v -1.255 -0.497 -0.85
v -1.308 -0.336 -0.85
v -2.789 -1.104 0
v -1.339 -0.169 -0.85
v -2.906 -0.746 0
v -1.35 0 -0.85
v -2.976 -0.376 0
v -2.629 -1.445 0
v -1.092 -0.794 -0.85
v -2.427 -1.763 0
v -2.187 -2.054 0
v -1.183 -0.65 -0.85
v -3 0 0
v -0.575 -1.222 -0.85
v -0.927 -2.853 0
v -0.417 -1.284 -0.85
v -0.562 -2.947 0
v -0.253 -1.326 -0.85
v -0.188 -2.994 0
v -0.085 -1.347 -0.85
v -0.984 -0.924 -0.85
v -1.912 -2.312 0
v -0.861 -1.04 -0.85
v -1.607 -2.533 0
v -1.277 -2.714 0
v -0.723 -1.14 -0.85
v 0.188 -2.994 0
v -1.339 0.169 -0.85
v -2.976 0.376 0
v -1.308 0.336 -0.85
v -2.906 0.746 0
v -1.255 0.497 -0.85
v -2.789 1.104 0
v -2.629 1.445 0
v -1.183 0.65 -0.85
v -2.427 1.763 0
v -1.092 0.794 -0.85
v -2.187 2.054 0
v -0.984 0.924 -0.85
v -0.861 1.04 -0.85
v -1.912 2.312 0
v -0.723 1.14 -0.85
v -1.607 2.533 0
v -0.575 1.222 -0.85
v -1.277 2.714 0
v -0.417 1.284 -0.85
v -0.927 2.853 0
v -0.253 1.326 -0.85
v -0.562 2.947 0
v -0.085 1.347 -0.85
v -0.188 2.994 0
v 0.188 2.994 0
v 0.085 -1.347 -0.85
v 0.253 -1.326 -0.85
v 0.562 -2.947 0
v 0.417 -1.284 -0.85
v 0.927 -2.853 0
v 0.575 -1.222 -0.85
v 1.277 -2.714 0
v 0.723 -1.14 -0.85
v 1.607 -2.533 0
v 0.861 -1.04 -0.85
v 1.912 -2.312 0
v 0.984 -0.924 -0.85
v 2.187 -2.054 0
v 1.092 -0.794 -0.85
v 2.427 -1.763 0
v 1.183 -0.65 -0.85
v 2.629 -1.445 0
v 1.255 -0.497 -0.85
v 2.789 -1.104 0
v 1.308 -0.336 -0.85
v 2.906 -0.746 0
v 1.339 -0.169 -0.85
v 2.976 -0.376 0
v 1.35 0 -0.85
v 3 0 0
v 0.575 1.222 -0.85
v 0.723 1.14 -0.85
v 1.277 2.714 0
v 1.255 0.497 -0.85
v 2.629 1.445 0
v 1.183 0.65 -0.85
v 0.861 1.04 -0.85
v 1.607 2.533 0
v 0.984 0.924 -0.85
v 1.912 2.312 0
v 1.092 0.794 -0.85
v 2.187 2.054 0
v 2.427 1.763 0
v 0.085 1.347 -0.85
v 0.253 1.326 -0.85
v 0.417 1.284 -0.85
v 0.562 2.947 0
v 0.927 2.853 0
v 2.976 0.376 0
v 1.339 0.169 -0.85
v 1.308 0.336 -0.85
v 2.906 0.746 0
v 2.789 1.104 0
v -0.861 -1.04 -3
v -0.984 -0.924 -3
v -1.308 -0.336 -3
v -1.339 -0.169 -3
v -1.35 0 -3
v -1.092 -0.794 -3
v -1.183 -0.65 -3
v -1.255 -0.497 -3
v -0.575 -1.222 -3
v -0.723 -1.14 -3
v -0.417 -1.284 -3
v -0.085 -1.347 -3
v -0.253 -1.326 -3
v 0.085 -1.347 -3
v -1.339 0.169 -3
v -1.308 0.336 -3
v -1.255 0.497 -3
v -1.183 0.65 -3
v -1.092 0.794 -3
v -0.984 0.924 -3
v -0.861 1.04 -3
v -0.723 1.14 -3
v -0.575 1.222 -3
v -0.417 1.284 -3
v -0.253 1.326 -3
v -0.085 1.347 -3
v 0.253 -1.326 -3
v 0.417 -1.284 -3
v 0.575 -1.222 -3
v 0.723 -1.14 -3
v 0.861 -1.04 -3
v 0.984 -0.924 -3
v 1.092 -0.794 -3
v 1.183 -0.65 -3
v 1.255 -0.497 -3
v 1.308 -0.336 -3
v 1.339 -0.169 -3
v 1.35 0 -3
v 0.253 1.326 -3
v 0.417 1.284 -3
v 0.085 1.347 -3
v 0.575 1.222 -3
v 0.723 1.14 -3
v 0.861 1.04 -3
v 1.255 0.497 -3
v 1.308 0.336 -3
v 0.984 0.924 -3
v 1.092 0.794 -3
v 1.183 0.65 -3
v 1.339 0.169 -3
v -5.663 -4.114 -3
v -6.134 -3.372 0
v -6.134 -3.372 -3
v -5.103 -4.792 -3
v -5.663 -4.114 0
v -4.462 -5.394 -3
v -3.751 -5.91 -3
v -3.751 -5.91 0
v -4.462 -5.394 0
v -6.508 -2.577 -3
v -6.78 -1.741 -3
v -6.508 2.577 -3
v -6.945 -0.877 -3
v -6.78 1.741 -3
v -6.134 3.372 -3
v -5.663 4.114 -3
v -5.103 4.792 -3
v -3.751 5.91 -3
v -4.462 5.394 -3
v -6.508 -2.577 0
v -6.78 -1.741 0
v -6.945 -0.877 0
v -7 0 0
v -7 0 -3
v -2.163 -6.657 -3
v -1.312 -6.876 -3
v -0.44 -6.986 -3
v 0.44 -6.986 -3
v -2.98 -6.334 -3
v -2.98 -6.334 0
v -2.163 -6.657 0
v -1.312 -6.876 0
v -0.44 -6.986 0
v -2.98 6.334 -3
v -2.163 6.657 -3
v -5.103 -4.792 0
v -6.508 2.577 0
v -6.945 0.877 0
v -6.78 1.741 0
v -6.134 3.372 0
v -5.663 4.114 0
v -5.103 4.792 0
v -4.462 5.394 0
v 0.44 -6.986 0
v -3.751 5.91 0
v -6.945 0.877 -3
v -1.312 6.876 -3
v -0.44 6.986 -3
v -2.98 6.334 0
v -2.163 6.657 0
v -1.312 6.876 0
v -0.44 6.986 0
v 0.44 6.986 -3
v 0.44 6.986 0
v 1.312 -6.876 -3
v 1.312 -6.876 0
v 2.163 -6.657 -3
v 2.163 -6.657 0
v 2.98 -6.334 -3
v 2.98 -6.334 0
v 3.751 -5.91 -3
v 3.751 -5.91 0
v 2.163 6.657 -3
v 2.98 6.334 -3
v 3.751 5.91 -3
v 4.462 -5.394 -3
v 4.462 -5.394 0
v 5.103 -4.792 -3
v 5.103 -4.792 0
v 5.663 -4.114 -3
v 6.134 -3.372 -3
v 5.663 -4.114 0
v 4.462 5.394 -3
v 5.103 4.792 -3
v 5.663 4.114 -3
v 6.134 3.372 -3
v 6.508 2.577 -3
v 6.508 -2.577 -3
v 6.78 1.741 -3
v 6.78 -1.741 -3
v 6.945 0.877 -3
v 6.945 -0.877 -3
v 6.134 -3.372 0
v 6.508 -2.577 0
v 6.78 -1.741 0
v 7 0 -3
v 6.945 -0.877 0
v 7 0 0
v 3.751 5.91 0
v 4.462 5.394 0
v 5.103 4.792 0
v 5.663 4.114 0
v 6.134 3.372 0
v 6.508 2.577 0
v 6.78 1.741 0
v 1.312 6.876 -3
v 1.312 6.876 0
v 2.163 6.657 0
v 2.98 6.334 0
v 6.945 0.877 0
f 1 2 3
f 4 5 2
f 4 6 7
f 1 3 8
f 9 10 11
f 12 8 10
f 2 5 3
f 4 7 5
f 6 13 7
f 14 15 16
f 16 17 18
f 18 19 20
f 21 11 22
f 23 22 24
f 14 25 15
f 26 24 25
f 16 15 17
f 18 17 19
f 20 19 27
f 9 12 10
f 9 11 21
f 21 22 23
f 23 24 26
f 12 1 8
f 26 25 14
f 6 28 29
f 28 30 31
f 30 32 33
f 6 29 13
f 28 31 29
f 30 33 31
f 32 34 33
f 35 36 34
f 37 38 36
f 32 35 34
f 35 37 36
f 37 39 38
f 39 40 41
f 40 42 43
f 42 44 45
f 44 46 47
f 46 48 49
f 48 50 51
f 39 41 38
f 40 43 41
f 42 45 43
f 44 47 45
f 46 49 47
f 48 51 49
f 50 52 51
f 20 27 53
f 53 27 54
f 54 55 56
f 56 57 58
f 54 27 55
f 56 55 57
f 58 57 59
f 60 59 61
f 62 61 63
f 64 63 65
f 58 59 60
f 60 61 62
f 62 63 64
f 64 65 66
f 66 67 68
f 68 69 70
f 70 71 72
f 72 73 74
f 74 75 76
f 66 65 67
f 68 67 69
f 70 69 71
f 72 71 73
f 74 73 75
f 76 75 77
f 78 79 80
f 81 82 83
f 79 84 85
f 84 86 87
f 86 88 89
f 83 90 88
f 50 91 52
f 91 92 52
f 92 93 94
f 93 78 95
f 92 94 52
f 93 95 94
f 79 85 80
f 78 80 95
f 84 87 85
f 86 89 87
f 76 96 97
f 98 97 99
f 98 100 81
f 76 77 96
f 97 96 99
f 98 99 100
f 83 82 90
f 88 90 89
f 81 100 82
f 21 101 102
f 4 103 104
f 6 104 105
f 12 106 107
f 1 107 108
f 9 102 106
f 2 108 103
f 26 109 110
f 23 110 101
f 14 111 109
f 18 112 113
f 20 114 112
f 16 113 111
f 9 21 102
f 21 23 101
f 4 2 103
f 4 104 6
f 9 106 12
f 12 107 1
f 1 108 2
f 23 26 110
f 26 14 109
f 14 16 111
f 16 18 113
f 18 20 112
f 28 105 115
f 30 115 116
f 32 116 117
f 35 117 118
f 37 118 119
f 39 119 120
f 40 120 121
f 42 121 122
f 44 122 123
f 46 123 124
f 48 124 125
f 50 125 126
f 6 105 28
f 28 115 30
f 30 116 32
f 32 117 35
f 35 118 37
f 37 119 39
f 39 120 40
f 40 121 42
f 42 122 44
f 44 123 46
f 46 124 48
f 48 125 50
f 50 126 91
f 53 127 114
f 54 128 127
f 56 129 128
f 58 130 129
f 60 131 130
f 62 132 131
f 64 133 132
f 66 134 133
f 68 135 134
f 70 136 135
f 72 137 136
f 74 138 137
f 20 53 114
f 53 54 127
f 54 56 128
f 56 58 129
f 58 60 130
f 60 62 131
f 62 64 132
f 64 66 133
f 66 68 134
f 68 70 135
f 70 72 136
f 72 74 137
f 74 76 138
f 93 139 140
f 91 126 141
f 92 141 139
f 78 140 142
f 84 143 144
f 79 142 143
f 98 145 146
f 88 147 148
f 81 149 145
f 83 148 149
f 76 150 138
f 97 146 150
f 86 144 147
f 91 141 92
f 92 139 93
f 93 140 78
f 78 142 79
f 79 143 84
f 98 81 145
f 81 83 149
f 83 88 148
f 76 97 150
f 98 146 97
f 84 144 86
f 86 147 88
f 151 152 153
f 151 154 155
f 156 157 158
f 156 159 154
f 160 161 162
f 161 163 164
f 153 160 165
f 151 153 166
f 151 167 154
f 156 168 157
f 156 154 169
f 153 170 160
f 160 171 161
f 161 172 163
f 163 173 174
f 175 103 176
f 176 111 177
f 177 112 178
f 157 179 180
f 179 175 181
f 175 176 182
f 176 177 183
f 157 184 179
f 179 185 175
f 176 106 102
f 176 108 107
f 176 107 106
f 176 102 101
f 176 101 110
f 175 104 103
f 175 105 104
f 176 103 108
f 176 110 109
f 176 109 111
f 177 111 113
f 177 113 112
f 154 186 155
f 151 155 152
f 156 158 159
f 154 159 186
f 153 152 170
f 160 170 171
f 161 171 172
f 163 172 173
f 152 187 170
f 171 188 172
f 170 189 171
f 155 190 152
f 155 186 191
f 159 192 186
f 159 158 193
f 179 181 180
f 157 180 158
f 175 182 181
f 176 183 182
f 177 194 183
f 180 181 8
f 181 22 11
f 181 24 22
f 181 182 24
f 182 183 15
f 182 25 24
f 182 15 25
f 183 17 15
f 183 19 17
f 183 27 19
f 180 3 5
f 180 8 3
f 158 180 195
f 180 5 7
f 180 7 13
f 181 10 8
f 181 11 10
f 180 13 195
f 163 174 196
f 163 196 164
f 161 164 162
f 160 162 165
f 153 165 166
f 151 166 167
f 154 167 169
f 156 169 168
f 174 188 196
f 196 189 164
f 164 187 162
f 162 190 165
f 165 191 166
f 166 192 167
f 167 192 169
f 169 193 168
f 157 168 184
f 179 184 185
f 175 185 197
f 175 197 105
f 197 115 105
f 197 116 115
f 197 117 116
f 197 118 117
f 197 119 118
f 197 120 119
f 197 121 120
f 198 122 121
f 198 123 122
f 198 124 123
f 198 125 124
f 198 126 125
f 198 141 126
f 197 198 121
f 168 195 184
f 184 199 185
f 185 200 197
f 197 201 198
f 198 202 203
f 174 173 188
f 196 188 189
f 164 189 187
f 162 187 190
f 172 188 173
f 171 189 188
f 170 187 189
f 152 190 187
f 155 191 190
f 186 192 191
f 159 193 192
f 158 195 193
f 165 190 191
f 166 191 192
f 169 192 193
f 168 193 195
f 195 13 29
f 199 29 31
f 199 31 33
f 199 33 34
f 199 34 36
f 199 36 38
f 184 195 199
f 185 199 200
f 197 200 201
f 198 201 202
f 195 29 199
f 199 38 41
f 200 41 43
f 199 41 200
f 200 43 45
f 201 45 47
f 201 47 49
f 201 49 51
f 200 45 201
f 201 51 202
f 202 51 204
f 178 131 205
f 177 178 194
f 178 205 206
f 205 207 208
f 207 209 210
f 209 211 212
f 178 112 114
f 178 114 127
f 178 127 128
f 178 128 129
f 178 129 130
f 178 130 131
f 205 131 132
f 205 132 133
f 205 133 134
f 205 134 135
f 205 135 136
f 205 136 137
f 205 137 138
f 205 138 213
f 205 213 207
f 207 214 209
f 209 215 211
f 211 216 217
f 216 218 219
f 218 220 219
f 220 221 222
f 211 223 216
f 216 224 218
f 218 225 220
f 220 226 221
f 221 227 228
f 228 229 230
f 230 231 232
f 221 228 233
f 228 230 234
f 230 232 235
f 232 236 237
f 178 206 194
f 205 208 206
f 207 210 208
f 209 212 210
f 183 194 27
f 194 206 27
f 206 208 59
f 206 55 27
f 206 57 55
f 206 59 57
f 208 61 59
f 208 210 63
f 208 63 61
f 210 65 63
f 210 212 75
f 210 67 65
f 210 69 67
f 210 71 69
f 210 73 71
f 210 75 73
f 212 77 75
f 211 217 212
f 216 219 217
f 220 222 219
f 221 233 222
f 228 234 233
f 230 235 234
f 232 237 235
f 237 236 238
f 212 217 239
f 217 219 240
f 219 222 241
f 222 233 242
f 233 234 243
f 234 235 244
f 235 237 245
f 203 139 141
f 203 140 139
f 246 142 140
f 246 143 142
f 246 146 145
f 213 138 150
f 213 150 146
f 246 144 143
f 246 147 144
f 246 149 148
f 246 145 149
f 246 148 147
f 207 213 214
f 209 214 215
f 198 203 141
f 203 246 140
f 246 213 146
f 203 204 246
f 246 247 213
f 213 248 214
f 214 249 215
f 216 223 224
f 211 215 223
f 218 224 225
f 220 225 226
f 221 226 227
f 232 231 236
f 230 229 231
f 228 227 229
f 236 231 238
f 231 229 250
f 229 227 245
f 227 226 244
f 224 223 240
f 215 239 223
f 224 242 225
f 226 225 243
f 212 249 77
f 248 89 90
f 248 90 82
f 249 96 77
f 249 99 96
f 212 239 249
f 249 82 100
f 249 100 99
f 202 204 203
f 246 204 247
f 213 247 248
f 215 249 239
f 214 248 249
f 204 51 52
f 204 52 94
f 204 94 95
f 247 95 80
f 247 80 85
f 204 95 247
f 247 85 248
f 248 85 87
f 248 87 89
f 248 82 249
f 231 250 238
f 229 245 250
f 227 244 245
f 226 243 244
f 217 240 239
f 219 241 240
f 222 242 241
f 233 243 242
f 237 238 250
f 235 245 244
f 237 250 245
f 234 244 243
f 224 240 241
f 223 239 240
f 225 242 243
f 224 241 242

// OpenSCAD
$fn = 50;

difference() {
	union() {
		translate(v = [0, 0, -3.0]) {
			cylinder(h = 3, r = 7.0);
		}
	}
	union() {
		translate(v = [0, 0, 0]) {
			rotate(a = [0, 0, 0]) {
				difference() {
					union() {
						translate(v = [0, 0, -6.0]) {
							cylinder(h = 6, r = 1.0);
						}
						translate(v = [0, 0, -0.85]) {
							cylinder(h = 0.85, r1 = 1.35, r2 = 3.0);
						}
						translate(v = [0, 0, -6.0]) {
							cylinder(h = 6, r = 1.35);
						}
						translate(v = [0, 0, -6.0]) {
							cylinder(h = 6, r = 1.0);
						}
					}
					union();
				}
			}
		}
	}
}
